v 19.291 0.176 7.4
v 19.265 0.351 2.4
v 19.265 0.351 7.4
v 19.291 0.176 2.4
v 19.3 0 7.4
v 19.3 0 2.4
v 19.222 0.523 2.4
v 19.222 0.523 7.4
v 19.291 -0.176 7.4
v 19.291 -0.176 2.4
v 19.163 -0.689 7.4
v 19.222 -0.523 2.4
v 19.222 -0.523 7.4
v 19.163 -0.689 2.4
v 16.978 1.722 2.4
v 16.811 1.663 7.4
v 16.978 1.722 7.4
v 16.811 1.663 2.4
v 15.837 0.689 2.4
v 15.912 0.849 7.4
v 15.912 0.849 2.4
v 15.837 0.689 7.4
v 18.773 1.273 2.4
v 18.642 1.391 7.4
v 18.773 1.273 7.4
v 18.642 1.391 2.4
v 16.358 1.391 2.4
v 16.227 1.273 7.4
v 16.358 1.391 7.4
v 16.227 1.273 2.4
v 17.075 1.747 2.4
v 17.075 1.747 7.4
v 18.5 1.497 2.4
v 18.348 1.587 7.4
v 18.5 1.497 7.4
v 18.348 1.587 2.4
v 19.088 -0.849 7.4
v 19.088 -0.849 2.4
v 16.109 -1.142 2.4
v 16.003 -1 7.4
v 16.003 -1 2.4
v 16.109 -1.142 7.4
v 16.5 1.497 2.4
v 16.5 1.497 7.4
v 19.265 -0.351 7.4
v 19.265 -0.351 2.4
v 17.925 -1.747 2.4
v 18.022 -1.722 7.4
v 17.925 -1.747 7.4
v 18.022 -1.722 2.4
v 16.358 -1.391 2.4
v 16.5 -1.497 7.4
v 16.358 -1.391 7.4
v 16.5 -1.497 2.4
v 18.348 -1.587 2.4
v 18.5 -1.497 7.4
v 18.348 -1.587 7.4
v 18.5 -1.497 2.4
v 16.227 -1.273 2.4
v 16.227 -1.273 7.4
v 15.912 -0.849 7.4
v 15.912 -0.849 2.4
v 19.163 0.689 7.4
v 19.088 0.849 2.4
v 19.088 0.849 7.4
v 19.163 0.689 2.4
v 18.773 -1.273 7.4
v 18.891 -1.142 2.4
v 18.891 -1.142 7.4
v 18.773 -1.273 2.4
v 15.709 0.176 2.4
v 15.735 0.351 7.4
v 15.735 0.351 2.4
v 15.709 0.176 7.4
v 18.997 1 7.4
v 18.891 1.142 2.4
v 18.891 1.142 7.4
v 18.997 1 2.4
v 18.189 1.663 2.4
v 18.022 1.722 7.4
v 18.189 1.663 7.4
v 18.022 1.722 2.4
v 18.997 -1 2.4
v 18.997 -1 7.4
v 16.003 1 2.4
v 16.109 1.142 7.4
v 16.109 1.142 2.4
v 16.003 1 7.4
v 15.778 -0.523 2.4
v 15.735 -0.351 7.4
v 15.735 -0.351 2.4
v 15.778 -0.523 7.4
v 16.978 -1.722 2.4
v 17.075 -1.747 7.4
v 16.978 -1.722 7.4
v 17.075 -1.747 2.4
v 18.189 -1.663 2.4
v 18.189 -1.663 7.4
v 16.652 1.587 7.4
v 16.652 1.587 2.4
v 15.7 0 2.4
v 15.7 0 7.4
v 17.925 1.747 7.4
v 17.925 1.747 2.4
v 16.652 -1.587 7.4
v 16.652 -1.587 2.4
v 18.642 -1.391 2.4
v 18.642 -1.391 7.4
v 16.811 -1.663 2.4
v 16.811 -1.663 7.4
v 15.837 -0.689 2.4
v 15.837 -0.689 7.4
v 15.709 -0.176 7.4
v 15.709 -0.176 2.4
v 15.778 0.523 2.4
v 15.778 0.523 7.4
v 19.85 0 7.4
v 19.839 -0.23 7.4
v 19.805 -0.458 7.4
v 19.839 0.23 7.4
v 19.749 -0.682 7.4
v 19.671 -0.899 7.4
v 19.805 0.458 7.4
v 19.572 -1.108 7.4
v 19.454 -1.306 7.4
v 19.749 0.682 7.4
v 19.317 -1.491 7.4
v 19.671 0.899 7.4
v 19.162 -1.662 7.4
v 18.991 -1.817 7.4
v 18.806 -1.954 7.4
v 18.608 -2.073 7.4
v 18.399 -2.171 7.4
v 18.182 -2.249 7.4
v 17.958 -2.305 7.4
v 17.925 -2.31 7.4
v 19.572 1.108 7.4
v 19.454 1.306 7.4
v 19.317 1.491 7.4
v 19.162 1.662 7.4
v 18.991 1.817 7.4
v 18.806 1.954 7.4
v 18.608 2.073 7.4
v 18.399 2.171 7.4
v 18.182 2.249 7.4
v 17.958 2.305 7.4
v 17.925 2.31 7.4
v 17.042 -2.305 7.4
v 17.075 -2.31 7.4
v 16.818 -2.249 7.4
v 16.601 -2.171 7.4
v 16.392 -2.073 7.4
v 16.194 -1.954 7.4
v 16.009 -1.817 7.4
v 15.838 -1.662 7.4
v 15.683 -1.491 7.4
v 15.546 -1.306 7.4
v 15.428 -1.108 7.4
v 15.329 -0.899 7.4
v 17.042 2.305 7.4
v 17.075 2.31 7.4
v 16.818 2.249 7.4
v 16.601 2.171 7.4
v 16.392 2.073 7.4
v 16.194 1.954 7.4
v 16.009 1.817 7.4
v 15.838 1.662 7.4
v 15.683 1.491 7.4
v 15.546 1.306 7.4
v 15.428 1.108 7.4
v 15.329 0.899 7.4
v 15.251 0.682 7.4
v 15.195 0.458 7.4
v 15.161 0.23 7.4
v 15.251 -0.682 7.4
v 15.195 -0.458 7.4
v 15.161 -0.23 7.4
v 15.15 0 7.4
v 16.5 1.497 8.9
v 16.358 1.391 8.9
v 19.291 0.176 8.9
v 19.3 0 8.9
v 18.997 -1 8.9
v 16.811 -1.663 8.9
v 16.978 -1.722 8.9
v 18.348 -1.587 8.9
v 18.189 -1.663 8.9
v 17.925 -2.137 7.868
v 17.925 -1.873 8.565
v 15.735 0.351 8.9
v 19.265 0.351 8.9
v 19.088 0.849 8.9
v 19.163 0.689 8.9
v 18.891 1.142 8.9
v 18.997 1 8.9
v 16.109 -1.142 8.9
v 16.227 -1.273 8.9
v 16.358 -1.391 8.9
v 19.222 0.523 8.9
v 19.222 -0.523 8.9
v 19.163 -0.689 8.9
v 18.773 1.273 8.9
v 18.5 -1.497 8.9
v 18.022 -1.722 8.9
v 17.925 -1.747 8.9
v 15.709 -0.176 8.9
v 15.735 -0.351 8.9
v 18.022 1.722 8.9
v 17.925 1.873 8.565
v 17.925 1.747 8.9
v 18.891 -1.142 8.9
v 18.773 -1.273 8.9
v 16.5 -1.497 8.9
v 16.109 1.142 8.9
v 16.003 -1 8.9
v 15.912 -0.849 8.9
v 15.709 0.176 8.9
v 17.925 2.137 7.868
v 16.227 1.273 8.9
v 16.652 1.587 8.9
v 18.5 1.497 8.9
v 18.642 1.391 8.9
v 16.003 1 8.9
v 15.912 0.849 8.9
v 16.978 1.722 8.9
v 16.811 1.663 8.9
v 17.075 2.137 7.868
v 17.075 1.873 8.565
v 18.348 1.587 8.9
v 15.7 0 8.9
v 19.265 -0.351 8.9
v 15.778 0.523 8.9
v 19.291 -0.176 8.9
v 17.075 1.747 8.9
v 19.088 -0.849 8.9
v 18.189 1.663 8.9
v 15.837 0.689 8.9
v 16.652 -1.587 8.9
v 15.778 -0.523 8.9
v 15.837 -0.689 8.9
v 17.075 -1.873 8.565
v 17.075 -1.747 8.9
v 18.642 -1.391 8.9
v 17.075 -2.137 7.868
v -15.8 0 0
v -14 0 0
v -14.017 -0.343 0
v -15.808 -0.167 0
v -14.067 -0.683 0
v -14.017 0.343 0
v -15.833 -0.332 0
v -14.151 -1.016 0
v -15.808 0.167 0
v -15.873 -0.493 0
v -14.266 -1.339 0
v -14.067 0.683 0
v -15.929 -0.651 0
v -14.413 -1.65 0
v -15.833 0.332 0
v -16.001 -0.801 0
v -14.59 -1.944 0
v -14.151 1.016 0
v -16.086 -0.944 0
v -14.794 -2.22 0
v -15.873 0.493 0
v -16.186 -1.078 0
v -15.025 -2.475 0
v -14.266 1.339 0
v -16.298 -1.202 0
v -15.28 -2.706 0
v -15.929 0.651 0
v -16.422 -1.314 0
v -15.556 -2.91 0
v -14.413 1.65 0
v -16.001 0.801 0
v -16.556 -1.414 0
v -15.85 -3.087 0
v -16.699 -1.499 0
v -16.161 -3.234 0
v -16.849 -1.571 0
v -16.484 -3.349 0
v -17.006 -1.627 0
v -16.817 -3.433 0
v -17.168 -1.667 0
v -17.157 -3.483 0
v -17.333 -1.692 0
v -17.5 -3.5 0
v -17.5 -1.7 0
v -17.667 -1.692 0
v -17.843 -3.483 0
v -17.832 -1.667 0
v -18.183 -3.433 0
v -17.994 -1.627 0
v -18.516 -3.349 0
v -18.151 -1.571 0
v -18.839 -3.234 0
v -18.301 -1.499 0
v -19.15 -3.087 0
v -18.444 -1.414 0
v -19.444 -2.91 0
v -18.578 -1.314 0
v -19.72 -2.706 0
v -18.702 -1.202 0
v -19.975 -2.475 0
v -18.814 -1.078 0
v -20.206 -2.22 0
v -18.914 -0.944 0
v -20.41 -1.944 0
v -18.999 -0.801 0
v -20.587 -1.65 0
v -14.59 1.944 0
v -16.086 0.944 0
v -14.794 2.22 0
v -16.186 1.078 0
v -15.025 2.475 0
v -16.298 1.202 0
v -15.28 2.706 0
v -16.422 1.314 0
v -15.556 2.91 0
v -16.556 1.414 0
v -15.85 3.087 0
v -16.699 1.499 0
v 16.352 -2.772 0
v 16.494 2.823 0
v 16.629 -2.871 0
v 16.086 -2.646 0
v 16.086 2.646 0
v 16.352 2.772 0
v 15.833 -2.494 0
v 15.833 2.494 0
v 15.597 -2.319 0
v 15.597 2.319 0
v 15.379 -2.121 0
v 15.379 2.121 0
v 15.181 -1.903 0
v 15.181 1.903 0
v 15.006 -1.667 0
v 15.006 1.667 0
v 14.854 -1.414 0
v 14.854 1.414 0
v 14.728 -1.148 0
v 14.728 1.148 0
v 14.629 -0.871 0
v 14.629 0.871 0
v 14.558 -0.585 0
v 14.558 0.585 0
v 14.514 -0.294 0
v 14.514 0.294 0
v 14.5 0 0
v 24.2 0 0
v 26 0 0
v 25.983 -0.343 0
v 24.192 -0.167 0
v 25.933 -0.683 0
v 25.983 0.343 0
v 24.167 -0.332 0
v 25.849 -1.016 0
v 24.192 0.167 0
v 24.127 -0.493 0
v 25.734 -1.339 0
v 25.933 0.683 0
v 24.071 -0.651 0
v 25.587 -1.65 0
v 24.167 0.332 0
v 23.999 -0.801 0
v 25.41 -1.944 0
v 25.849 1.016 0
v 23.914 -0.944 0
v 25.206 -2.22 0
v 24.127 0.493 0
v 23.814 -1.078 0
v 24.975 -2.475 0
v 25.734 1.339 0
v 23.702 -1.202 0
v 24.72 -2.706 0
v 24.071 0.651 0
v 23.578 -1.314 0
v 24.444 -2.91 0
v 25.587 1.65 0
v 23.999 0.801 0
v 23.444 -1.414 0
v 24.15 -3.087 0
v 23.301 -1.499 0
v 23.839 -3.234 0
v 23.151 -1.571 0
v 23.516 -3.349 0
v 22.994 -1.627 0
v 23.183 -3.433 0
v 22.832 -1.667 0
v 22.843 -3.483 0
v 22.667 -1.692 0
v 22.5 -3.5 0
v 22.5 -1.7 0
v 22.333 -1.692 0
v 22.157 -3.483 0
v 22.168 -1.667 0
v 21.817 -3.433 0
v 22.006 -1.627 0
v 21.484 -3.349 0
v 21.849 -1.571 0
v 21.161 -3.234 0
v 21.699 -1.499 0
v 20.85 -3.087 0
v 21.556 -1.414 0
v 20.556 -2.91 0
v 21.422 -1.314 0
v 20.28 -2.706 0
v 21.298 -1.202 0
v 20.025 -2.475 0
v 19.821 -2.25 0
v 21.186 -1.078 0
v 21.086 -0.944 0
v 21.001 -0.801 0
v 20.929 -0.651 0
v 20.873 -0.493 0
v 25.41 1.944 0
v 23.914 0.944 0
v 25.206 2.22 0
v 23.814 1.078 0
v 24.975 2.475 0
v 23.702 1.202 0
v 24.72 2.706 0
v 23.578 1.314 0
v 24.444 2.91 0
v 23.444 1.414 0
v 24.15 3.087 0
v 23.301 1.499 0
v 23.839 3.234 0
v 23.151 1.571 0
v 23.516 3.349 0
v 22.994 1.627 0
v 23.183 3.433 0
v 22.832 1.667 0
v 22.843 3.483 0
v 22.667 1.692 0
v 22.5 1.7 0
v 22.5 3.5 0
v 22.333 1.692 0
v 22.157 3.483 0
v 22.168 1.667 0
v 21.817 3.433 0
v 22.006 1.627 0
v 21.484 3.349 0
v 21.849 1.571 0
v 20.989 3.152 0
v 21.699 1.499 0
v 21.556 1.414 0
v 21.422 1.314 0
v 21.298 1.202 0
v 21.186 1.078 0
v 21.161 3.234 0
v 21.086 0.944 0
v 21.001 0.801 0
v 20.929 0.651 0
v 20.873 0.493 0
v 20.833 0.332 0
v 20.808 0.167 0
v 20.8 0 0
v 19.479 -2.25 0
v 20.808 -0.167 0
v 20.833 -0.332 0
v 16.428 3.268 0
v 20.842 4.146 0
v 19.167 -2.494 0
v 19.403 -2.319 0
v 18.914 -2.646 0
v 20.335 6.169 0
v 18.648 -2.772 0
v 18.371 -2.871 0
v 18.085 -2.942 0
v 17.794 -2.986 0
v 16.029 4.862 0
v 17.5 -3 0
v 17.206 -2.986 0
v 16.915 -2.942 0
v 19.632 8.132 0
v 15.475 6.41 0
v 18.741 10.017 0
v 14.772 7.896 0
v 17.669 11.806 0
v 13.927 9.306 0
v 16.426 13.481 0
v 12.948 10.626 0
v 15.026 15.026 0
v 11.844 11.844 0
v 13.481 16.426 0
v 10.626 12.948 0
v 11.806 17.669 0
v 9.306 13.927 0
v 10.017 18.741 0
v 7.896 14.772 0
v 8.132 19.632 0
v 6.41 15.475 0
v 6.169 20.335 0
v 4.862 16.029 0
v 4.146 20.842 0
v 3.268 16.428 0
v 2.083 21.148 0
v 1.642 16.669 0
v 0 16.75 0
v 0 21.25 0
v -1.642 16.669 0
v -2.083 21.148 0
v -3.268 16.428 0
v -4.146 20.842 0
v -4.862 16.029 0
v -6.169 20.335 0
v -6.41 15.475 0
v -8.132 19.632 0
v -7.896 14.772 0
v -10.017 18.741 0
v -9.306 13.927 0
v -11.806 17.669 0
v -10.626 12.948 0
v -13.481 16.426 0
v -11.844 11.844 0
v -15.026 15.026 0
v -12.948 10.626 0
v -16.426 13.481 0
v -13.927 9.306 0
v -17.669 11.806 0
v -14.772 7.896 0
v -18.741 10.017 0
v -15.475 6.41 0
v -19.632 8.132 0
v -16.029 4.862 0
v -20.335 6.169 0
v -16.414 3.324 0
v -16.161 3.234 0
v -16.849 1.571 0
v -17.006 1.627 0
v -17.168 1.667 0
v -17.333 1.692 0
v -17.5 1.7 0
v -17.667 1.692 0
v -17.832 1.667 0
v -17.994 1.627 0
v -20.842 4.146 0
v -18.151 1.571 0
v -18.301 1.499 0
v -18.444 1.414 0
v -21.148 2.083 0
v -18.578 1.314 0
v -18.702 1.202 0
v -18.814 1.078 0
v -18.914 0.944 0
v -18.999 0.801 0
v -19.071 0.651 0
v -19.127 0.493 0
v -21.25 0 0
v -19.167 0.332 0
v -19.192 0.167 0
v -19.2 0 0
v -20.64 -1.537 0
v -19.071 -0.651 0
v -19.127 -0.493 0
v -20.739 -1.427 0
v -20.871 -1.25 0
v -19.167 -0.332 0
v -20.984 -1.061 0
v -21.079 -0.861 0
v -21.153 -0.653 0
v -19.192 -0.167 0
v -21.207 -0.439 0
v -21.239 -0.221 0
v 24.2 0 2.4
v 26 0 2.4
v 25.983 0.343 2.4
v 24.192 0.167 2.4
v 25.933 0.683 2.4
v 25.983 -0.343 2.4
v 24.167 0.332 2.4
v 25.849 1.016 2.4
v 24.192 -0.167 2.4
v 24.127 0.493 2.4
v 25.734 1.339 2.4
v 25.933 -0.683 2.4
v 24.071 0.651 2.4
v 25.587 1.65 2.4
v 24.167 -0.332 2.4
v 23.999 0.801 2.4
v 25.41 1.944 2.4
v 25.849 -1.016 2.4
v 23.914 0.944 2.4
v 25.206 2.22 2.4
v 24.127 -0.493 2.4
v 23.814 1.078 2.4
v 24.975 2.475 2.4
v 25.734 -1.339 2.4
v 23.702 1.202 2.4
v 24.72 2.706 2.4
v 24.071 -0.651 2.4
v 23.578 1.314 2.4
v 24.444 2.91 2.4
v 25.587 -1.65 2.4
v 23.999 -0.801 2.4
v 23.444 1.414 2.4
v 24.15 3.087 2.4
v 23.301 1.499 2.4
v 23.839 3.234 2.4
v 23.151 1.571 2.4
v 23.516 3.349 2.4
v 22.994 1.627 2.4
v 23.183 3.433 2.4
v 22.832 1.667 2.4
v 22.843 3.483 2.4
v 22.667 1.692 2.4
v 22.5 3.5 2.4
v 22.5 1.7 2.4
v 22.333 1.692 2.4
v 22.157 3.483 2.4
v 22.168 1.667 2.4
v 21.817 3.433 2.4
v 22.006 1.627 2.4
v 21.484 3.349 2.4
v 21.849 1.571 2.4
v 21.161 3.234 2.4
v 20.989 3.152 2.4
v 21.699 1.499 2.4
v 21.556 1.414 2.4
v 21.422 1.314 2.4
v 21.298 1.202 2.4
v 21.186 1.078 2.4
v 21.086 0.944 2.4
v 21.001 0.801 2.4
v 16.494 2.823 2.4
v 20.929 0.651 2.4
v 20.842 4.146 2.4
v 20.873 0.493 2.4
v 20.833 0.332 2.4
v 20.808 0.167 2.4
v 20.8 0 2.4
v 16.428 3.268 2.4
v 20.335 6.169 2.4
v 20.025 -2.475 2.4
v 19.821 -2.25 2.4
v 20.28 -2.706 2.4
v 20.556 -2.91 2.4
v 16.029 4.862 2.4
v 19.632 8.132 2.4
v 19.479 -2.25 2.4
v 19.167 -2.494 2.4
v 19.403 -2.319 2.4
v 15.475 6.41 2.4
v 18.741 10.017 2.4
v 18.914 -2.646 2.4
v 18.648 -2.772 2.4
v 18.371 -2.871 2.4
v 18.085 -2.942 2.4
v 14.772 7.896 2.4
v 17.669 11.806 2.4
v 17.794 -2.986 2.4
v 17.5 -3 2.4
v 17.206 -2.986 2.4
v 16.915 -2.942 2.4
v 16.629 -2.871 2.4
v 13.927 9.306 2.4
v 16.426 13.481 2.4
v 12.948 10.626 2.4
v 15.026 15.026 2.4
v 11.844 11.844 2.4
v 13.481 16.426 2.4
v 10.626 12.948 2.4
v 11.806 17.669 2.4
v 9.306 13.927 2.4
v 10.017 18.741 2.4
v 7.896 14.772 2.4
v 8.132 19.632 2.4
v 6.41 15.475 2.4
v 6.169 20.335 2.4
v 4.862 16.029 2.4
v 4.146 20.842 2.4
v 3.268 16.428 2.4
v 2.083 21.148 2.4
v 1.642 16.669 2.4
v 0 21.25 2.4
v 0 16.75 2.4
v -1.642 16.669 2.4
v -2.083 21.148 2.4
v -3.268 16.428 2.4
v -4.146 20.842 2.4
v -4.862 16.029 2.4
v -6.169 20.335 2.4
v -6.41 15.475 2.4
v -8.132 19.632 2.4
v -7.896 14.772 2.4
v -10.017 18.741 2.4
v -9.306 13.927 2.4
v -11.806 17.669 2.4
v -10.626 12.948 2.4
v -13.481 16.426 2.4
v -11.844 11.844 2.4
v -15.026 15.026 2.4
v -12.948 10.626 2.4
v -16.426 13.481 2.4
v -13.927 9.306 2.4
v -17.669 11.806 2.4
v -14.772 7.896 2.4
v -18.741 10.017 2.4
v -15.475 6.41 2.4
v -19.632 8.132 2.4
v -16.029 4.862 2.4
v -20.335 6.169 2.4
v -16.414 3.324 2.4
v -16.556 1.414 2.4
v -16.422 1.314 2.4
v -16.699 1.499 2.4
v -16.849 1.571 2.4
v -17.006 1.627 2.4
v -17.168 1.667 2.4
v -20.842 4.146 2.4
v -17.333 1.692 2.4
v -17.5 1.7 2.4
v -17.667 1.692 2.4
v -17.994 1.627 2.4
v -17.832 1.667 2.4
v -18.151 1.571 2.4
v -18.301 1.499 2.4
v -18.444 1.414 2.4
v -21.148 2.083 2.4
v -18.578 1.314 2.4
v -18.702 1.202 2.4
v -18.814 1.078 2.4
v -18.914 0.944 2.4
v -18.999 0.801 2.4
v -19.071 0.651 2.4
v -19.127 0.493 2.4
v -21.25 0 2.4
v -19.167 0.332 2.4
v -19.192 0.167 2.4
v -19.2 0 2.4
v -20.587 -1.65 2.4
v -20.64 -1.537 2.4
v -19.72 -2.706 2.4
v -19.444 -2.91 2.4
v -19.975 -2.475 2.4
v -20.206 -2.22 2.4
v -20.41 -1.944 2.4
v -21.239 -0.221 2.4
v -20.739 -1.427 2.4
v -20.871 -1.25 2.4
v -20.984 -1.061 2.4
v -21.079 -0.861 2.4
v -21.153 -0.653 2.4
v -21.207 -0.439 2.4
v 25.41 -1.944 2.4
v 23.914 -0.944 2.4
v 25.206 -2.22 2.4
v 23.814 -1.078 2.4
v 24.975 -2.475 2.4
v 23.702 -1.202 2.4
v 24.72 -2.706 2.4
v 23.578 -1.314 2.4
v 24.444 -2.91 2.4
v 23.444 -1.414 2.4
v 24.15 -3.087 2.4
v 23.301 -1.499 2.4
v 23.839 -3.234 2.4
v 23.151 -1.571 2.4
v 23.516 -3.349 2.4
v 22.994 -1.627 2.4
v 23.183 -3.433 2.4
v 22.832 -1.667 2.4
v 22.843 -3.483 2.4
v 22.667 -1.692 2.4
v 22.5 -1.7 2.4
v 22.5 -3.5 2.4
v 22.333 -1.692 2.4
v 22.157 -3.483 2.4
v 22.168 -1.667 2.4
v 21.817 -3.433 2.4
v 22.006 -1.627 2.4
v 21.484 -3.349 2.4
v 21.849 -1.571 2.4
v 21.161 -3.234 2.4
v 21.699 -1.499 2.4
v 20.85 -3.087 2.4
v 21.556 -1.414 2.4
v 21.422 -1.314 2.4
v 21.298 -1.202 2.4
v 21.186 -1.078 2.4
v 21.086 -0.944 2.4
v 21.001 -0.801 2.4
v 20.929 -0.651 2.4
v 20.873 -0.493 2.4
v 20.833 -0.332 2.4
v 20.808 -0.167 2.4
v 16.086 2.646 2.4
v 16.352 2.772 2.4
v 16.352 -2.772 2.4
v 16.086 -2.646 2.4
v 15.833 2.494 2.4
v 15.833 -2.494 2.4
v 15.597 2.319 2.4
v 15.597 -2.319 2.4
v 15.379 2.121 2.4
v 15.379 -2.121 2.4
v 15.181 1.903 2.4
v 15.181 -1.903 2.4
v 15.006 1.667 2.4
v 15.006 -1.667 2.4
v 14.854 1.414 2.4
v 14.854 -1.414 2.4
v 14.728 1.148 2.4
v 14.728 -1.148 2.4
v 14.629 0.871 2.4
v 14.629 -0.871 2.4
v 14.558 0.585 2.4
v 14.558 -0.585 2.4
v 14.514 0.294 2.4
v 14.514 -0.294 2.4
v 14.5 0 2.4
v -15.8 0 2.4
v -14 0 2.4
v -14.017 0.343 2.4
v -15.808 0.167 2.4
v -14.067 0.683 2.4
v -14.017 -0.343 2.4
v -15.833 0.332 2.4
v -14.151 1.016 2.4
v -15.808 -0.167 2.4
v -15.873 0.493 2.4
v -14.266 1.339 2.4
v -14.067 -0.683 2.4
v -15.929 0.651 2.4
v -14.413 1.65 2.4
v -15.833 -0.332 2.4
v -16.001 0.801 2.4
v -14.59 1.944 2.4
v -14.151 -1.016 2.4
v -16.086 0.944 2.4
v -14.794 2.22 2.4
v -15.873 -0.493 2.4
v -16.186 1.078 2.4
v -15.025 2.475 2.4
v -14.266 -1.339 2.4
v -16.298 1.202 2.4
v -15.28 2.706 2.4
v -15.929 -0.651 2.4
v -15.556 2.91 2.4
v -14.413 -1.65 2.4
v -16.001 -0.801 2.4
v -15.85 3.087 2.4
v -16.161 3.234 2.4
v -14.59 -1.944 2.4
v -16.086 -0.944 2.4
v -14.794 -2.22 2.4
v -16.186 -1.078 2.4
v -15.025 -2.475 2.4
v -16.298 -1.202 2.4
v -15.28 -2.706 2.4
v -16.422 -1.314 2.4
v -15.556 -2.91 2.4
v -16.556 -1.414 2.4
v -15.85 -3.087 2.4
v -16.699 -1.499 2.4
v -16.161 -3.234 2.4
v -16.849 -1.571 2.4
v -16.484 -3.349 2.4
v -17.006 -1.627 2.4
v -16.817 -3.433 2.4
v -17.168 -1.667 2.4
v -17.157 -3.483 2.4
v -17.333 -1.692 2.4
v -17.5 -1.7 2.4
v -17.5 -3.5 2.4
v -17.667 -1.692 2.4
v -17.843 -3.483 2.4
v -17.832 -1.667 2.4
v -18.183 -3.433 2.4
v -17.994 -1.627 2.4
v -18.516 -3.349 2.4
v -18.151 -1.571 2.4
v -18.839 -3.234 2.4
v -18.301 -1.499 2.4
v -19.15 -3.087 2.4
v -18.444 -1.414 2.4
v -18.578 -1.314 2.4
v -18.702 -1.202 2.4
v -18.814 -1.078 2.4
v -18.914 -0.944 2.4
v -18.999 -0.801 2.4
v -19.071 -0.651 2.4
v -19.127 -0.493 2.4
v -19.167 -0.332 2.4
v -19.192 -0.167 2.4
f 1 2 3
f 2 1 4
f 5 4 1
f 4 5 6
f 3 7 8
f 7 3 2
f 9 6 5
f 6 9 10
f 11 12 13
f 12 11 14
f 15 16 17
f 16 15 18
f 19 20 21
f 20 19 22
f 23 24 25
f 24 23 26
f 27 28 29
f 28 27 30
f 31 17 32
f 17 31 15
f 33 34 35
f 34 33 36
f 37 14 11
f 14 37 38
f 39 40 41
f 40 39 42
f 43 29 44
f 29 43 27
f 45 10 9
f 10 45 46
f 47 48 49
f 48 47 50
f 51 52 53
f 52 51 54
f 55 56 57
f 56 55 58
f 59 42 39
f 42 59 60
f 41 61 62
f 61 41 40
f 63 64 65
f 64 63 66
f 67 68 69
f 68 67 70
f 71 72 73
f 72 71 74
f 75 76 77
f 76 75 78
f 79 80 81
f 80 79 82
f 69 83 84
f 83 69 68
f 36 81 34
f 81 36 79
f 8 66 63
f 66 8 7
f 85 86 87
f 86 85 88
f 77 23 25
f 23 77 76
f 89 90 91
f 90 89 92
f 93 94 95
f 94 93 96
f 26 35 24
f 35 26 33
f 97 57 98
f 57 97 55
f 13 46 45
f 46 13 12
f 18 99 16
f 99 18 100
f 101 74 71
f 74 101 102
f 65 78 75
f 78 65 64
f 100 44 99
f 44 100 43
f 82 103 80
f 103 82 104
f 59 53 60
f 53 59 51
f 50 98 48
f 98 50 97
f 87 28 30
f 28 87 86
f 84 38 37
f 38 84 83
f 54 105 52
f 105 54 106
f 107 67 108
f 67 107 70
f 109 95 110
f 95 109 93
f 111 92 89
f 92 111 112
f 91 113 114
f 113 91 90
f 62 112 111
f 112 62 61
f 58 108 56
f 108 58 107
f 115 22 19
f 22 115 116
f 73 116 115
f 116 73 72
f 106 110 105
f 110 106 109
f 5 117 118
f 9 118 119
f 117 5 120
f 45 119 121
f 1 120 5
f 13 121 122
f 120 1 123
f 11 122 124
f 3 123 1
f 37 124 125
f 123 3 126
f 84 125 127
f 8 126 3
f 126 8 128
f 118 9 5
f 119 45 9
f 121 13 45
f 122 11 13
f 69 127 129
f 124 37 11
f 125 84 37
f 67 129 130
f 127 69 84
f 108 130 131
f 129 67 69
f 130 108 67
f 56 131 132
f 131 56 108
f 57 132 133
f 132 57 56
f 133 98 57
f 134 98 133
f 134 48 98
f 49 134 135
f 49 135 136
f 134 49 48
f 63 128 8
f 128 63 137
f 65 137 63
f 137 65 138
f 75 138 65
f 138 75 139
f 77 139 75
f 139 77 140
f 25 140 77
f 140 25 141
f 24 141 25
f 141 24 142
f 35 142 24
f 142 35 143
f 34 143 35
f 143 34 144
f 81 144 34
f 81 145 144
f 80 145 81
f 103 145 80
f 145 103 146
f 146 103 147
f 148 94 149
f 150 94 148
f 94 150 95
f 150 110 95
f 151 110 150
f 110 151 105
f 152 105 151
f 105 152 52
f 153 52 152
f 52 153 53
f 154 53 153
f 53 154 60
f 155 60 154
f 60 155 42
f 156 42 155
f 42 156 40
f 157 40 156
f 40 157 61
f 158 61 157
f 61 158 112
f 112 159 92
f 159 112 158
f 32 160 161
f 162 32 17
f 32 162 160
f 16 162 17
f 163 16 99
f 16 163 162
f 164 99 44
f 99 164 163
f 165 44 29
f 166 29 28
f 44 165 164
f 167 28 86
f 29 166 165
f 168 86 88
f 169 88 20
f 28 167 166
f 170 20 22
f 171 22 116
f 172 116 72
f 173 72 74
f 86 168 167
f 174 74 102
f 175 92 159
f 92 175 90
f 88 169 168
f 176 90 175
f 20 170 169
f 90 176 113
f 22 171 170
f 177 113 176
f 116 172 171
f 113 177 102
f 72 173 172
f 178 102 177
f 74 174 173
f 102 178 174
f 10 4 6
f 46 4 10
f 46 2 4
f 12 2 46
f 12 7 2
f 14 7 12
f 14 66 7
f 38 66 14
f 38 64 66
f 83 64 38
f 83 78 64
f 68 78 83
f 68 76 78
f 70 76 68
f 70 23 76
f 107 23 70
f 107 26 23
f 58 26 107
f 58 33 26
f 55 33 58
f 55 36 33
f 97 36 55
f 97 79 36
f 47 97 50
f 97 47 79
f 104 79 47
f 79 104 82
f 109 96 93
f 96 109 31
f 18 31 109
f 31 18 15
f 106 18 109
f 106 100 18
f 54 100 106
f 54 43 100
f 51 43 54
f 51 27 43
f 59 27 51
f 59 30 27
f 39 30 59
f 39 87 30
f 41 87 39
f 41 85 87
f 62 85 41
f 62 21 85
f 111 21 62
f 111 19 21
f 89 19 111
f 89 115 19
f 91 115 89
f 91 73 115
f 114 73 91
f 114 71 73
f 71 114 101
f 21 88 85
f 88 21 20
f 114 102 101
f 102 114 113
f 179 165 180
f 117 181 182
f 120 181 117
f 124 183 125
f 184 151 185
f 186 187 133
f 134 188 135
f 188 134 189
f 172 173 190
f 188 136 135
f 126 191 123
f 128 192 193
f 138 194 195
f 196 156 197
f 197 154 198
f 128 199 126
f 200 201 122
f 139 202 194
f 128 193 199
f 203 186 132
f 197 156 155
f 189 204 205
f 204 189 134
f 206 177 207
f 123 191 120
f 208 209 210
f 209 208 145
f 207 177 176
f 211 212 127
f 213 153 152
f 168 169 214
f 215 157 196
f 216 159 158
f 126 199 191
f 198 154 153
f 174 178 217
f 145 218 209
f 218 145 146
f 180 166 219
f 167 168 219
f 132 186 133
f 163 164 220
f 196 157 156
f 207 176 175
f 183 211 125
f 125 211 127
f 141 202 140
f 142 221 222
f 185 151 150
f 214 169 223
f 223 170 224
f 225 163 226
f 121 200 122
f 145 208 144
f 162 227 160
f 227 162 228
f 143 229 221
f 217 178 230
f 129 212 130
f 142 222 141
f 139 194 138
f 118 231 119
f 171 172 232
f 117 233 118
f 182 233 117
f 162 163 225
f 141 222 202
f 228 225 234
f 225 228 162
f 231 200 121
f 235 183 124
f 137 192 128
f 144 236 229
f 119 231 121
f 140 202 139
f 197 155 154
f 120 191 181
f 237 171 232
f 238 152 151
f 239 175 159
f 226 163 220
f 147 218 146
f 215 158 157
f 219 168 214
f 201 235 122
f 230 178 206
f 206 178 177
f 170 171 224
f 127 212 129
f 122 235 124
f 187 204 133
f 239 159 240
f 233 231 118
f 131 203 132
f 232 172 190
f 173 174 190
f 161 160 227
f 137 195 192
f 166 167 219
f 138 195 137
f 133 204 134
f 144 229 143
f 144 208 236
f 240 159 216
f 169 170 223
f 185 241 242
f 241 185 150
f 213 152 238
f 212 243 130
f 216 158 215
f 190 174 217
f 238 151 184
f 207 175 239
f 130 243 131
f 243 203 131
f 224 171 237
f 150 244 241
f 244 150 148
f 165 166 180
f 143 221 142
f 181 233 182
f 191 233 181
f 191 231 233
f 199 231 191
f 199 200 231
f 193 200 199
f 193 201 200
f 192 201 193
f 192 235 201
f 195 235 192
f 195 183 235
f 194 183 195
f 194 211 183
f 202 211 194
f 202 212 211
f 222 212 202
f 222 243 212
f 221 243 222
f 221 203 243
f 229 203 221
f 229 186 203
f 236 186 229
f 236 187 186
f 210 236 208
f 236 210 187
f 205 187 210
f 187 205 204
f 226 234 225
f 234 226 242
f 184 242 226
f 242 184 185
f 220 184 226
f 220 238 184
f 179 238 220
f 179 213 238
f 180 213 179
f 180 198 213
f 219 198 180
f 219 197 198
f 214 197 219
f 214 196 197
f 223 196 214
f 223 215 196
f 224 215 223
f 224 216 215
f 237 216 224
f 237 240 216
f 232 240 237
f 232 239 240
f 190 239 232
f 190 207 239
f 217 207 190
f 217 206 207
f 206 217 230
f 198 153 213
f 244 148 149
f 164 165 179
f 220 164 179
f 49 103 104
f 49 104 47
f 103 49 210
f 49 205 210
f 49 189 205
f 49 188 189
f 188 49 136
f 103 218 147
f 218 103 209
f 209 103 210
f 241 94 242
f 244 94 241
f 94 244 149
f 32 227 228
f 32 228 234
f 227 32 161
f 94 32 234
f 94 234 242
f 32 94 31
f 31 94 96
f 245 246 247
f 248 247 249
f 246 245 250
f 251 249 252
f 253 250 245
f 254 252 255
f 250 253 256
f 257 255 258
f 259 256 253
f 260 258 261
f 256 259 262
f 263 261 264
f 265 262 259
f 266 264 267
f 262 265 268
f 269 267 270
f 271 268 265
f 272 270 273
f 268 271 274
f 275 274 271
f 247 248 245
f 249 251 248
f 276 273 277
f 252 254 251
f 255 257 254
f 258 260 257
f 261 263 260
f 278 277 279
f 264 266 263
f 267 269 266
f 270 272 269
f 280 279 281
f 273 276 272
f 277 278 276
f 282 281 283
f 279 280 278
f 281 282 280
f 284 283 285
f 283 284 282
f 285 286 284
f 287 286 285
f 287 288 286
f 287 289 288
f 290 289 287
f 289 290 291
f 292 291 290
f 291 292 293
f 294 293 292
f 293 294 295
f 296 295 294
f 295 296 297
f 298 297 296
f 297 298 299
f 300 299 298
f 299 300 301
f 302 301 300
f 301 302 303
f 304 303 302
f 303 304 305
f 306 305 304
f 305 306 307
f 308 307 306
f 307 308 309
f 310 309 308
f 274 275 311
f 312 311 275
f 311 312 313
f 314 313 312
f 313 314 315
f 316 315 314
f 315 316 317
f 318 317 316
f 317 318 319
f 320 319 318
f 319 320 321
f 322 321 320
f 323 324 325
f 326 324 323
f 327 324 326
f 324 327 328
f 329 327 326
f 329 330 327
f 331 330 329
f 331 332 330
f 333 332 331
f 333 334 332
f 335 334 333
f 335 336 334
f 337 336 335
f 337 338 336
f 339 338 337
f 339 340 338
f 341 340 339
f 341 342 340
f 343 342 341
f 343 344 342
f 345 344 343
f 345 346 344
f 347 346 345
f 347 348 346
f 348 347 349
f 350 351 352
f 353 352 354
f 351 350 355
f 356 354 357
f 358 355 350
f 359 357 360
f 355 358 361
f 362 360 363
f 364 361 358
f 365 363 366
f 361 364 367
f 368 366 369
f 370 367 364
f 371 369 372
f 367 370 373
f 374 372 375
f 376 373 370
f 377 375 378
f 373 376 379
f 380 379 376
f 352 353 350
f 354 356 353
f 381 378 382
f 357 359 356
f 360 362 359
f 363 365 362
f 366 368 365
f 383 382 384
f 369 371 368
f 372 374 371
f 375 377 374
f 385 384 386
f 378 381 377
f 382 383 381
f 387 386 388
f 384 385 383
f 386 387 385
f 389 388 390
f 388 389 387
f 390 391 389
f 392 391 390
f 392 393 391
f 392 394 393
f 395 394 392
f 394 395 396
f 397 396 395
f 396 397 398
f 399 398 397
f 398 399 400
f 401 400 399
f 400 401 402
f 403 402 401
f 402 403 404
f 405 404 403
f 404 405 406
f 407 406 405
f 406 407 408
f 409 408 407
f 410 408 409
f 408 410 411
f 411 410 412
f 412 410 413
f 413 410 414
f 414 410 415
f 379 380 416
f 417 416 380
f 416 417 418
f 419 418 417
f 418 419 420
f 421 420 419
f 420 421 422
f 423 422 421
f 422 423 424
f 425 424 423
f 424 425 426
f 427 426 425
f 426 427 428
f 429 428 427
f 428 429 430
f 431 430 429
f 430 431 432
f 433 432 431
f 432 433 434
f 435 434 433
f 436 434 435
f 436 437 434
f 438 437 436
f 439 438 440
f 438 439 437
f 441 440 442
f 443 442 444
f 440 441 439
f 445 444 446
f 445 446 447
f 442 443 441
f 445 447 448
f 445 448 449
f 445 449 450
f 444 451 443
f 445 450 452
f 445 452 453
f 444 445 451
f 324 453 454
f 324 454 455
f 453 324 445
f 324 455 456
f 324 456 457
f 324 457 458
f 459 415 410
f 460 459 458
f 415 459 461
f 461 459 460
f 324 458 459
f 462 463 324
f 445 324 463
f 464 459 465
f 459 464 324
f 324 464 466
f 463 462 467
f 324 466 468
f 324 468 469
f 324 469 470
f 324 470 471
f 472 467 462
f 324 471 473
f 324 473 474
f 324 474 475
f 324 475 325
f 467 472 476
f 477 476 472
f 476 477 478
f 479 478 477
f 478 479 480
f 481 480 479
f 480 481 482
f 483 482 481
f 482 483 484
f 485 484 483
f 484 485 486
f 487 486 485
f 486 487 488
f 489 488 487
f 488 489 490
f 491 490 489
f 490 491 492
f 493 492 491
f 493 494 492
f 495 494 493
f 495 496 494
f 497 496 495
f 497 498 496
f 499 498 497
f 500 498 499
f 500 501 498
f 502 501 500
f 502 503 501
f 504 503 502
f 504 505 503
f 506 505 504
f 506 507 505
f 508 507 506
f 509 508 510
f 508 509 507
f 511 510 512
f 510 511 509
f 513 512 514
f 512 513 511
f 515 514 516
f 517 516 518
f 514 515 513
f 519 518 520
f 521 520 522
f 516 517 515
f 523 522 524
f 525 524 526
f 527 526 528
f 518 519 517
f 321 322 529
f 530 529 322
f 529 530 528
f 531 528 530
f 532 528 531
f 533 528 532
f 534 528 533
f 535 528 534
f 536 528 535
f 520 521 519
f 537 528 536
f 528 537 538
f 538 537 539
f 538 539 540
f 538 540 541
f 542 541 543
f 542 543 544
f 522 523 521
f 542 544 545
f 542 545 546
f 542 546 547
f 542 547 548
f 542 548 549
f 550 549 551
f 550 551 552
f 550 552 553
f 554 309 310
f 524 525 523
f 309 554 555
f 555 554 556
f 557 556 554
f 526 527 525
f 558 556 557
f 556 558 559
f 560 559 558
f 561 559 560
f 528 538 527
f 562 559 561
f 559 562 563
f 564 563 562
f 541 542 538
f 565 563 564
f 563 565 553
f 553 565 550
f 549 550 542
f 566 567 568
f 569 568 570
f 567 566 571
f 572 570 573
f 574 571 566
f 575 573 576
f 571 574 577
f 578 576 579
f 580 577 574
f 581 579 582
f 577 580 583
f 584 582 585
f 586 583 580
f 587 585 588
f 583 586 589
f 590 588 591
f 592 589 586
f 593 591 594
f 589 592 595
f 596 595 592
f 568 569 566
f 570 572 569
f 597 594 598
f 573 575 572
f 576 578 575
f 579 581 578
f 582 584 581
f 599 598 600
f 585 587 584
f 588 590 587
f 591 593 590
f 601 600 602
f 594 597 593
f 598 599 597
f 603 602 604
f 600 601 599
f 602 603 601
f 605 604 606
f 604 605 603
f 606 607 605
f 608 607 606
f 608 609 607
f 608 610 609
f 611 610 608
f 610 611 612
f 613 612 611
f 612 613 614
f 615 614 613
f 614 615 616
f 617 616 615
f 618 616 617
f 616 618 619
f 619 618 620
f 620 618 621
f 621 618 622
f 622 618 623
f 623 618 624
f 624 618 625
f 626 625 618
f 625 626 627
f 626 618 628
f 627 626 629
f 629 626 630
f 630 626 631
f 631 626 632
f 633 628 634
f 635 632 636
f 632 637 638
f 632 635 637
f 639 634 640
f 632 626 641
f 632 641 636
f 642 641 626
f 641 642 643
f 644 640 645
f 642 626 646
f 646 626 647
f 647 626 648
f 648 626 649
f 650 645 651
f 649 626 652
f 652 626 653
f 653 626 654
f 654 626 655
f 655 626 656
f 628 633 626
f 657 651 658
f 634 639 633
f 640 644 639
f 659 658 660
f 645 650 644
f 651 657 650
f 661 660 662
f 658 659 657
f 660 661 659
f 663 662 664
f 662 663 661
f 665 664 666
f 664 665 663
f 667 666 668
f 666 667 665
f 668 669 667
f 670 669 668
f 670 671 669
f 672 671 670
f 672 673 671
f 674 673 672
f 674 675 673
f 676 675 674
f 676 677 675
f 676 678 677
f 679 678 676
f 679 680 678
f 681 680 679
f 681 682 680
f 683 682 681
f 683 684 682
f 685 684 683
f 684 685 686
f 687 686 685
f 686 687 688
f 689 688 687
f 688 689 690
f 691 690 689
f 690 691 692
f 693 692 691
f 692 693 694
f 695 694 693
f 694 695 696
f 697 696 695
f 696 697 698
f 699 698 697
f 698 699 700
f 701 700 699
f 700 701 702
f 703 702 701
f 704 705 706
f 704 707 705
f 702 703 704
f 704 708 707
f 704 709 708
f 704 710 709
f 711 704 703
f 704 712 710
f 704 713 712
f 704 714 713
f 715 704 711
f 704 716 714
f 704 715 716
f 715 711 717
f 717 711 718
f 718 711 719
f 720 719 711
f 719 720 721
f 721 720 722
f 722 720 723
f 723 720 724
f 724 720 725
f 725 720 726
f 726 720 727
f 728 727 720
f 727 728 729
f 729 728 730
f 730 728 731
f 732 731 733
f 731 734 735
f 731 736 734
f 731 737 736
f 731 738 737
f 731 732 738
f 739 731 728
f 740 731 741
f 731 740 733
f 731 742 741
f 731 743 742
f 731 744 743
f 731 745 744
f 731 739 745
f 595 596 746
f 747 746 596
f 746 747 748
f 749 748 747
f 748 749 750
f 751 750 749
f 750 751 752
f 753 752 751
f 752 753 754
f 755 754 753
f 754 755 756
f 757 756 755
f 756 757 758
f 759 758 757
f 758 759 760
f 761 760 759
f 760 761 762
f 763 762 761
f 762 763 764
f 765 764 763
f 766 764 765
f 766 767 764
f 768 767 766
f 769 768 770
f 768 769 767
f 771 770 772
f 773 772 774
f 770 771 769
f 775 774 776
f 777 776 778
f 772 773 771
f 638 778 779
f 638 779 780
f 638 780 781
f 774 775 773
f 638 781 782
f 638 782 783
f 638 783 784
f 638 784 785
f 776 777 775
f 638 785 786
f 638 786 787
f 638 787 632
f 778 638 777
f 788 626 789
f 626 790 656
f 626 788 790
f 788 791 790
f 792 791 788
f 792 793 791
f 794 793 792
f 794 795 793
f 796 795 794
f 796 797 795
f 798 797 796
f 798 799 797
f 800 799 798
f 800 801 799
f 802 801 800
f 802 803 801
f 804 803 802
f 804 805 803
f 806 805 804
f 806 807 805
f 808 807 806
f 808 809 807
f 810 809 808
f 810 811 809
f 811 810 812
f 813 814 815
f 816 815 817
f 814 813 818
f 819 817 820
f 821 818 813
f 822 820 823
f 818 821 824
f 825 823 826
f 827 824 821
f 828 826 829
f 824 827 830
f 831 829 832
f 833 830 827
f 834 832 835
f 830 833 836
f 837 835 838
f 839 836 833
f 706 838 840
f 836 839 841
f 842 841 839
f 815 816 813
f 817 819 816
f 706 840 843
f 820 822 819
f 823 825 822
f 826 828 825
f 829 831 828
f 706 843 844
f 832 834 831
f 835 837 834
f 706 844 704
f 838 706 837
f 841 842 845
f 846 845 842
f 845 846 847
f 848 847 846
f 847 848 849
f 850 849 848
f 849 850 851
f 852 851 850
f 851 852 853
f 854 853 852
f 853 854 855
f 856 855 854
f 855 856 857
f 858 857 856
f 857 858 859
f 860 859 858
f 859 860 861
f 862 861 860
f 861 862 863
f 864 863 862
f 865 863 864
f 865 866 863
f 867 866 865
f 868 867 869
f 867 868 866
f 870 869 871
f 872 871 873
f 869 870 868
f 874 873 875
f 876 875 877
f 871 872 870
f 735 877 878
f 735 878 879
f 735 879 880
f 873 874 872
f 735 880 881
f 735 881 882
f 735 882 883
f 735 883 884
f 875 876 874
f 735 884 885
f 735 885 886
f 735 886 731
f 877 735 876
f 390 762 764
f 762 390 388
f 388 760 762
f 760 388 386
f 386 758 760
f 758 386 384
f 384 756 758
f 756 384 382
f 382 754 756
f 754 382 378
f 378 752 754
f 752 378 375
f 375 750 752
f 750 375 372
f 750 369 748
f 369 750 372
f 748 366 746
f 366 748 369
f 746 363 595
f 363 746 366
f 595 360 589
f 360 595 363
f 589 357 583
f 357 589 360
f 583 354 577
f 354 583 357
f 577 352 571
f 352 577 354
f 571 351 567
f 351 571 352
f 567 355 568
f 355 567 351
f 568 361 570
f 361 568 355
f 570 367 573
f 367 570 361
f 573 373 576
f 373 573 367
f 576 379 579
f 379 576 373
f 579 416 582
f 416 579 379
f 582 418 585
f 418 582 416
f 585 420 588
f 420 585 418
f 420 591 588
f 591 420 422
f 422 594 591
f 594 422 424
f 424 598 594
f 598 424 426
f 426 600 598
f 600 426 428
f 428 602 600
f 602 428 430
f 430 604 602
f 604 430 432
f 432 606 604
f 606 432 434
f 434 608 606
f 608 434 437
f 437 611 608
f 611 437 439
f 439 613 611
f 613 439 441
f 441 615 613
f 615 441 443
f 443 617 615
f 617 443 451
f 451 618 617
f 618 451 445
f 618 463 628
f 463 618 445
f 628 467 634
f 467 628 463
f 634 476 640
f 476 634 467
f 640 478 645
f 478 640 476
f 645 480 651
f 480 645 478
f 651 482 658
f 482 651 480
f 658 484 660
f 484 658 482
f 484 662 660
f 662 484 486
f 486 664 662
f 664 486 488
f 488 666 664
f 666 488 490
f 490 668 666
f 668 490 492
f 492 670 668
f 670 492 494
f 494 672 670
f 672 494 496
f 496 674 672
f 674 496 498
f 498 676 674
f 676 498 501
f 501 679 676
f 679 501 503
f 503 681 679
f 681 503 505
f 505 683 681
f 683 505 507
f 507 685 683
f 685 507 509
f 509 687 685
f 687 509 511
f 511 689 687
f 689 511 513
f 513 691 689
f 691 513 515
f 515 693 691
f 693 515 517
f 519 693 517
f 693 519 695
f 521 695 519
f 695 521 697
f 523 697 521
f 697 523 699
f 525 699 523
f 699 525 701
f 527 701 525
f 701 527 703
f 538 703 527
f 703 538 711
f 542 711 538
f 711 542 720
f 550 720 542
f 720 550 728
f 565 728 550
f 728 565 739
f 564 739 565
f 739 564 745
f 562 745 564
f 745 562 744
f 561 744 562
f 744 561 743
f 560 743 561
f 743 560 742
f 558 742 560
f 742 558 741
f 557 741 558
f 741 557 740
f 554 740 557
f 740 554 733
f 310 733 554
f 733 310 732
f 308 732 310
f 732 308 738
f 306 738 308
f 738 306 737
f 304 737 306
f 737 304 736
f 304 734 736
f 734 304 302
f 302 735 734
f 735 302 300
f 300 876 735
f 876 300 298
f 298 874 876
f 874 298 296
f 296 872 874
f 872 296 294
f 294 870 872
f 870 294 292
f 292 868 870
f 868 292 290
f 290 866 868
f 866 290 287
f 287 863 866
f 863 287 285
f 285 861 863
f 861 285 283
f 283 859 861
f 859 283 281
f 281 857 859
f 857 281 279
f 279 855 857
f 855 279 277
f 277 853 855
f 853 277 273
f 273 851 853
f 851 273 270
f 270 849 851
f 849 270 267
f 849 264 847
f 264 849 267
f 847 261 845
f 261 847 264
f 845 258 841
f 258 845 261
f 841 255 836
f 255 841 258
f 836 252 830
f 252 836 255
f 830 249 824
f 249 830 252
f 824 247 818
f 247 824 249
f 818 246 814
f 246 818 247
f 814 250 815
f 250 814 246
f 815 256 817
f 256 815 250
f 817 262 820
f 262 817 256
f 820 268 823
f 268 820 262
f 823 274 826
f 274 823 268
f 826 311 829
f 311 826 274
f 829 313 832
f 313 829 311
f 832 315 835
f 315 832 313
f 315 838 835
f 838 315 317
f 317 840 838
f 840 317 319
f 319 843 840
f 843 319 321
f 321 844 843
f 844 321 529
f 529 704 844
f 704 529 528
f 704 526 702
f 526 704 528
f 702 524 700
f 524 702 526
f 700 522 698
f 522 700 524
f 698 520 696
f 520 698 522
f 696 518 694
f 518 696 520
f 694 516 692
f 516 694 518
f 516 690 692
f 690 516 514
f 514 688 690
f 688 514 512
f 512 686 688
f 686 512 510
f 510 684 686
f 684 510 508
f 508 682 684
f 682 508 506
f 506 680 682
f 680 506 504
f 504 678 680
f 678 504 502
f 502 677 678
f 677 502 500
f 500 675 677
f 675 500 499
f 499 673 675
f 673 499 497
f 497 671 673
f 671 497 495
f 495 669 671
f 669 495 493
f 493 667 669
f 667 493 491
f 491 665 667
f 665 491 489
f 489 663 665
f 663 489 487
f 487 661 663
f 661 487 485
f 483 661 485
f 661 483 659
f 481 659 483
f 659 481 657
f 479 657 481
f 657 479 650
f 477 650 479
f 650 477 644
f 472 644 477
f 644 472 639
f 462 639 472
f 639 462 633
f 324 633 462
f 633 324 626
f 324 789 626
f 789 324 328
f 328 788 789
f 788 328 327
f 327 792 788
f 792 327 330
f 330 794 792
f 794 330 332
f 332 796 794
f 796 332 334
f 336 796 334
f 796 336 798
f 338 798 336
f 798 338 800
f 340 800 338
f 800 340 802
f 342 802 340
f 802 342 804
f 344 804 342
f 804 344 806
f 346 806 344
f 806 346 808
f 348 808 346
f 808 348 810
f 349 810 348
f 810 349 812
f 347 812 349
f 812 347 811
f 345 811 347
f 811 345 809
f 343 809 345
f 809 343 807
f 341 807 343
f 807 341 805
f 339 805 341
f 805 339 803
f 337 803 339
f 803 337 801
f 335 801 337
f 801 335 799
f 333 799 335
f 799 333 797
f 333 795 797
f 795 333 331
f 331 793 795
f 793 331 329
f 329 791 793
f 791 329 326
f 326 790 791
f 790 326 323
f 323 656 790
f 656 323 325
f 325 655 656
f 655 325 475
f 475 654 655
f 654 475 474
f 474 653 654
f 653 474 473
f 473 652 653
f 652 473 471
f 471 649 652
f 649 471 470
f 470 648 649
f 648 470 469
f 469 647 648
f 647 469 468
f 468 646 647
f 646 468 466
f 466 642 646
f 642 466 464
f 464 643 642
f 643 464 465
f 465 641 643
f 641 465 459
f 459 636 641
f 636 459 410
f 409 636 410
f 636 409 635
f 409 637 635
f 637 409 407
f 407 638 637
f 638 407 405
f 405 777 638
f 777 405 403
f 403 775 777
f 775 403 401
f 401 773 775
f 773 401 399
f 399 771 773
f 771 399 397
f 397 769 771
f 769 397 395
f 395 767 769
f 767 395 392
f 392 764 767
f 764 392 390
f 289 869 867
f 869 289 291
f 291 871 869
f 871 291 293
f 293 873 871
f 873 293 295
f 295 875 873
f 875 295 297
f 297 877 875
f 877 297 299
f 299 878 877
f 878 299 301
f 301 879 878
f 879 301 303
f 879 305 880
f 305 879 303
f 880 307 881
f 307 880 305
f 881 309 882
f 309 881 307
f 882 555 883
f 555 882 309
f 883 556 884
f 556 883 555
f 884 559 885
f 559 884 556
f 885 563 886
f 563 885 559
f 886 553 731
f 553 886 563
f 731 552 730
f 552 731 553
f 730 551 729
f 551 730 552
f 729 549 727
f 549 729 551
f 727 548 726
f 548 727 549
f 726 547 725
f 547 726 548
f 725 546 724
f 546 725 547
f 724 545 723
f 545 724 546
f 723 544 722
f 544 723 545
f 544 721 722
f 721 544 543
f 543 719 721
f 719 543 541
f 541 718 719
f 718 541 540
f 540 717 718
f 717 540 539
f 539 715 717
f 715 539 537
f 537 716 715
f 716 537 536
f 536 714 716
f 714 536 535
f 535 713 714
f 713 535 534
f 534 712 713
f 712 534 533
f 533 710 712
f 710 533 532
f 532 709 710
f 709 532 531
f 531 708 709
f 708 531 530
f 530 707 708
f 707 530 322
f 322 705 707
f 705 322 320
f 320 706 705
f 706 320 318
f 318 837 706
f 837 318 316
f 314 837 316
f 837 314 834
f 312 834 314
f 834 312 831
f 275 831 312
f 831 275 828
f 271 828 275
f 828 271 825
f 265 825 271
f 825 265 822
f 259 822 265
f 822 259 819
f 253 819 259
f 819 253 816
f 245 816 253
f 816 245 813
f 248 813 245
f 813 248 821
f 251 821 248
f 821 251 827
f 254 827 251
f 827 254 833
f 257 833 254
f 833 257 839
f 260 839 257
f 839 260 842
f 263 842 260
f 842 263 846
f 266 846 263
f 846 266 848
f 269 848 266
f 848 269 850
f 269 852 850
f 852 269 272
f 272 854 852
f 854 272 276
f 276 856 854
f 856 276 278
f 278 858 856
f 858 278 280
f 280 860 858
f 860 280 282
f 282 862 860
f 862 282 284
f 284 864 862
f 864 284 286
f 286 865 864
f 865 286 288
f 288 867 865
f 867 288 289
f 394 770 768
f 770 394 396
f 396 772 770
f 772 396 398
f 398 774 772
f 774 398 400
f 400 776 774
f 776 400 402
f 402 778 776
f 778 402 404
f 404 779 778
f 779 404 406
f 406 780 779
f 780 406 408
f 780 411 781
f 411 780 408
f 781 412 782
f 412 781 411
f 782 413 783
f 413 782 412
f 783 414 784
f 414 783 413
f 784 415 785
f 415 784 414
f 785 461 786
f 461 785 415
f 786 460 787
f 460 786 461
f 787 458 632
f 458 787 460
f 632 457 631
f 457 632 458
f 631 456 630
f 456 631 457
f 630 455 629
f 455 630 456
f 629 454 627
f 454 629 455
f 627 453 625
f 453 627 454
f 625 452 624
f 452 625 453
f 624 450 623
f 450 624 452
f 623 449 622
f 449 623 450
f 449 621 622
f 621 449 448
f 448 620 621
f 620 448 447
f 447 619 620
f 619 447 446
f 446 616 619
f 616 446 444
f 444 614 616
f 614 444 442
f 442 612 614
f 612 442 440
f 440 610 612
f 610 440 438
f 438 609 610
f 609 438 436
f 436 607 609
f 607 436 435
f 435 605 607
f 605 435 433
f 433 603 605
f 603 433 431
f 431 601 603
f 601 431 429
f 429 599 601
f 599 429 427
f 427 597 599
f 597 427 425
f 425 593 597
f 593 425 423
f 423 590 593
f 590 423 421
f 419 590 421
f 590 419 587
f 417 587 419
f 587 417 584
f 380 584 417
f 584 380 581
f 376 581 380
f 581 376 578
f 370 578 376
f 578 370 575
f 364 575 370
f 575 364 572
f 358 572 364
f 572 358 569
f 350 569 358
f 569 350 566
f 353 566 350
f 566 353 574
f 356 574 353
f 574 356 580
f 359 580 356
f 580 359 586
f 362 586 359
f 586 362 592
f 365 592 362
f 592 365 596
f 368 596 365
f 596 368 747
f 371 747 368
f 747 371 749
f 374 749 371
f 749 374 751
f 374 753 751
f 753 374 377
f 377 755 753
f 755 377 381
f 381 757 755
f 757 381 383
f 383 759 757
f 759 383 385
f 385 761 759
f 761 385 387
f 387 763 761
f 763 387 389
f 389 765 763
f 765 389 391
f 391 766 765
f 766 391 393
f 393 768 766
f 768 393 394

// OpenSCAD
// Artificial Emotion — 28BYJ-48 grid adapter V02
// Units: mm. Experimental dimensions: check fit on actual motor.
$fn = 64;

hole_spacing = 35;
grid_spacing = 40;
m3_clearance = 3.4;
original_hole_d = 4.2; // measure on motor; nominal starting point
thickness = 2.4;
strap_width = 4.5;
outer_radius = 19.0; // approximate motor envelope; adjust after measurement
motor_clearance = 0.8;
clip_shaft_d = 3.6;
clip_head_d = 4.7; // V02: slightly stronger interference; tune for printer
clip_height = 5.0; // V02: +1.5 mm shaft engagement
clip_head_height = 1.5; // V02: +0.5 mm head, total clip +2 mm
clip_slot = 0.85;
left_pad_d = 7.0;
right_pad_d = 7.0;
// Motor mounting holes at (-17.5,0), (+17.5,0).
// Extension at x=+22.5, resulting in 40mm center distance.
left_x = -hole_spacing/2;
right_x = hole_spacing/2;
ext_x = left_x + grid_spacing;

module capsule(a,b,d){
 hull(){translate(a) circle(d=d);translate(b) circle(d=d);}
}
module planar_profile(){
 difference(){
  union(){
   // U-shaped strap above motor: two legs and an arc
   intersection(){
    difference(){
     circle(r=outer_radius + strap_width/2);
     circle(r=outer_radius - strap_width/2);
    }
    translate([-outer_radius-strap_width,0]) square([2*(outer_radius+strap_width),outer_radius+strap_width]);
   }
   capsule([left_x,0],[-outer_radius,0],strap_width);
   capsule([right_x,0],[outer_radius,0],strap_width);
   circle_at_left();
   capsule([right_x,0],[ext_x,0],strap_width);
   translate([ext_x,0]) circle(d=right_pad_d);
   translate([right_x,0]) circle(d=6.0);
  }
  translate([left_x,0]) circle(d=m3_clearance);
  translate([ext_x,0]) circle(d=m3_clearance);
 }
}
module circle_at_left(){translate([left_x,0]) circle(d=left_pad_d);}
module clip(){
 translate([right_x,0,thickness])
 difference(){
  union(){
   cylinder(h=clip_height,d=clip_shaft_d);
   translate([0,0,clip_height]) cylinder(h=clip_head_height,d1=clip_head_d,d2=clip_shaft_d);
  }
  translate([-clip_slot/2,-clip_head_d/2-1,-0.01]) cube([clip_slot,clip_head_d+2,clip_height+clip_head_height+0.03]);
 }
}
union(){linear_extrude(height=thickness) planar_profile();clip();}
